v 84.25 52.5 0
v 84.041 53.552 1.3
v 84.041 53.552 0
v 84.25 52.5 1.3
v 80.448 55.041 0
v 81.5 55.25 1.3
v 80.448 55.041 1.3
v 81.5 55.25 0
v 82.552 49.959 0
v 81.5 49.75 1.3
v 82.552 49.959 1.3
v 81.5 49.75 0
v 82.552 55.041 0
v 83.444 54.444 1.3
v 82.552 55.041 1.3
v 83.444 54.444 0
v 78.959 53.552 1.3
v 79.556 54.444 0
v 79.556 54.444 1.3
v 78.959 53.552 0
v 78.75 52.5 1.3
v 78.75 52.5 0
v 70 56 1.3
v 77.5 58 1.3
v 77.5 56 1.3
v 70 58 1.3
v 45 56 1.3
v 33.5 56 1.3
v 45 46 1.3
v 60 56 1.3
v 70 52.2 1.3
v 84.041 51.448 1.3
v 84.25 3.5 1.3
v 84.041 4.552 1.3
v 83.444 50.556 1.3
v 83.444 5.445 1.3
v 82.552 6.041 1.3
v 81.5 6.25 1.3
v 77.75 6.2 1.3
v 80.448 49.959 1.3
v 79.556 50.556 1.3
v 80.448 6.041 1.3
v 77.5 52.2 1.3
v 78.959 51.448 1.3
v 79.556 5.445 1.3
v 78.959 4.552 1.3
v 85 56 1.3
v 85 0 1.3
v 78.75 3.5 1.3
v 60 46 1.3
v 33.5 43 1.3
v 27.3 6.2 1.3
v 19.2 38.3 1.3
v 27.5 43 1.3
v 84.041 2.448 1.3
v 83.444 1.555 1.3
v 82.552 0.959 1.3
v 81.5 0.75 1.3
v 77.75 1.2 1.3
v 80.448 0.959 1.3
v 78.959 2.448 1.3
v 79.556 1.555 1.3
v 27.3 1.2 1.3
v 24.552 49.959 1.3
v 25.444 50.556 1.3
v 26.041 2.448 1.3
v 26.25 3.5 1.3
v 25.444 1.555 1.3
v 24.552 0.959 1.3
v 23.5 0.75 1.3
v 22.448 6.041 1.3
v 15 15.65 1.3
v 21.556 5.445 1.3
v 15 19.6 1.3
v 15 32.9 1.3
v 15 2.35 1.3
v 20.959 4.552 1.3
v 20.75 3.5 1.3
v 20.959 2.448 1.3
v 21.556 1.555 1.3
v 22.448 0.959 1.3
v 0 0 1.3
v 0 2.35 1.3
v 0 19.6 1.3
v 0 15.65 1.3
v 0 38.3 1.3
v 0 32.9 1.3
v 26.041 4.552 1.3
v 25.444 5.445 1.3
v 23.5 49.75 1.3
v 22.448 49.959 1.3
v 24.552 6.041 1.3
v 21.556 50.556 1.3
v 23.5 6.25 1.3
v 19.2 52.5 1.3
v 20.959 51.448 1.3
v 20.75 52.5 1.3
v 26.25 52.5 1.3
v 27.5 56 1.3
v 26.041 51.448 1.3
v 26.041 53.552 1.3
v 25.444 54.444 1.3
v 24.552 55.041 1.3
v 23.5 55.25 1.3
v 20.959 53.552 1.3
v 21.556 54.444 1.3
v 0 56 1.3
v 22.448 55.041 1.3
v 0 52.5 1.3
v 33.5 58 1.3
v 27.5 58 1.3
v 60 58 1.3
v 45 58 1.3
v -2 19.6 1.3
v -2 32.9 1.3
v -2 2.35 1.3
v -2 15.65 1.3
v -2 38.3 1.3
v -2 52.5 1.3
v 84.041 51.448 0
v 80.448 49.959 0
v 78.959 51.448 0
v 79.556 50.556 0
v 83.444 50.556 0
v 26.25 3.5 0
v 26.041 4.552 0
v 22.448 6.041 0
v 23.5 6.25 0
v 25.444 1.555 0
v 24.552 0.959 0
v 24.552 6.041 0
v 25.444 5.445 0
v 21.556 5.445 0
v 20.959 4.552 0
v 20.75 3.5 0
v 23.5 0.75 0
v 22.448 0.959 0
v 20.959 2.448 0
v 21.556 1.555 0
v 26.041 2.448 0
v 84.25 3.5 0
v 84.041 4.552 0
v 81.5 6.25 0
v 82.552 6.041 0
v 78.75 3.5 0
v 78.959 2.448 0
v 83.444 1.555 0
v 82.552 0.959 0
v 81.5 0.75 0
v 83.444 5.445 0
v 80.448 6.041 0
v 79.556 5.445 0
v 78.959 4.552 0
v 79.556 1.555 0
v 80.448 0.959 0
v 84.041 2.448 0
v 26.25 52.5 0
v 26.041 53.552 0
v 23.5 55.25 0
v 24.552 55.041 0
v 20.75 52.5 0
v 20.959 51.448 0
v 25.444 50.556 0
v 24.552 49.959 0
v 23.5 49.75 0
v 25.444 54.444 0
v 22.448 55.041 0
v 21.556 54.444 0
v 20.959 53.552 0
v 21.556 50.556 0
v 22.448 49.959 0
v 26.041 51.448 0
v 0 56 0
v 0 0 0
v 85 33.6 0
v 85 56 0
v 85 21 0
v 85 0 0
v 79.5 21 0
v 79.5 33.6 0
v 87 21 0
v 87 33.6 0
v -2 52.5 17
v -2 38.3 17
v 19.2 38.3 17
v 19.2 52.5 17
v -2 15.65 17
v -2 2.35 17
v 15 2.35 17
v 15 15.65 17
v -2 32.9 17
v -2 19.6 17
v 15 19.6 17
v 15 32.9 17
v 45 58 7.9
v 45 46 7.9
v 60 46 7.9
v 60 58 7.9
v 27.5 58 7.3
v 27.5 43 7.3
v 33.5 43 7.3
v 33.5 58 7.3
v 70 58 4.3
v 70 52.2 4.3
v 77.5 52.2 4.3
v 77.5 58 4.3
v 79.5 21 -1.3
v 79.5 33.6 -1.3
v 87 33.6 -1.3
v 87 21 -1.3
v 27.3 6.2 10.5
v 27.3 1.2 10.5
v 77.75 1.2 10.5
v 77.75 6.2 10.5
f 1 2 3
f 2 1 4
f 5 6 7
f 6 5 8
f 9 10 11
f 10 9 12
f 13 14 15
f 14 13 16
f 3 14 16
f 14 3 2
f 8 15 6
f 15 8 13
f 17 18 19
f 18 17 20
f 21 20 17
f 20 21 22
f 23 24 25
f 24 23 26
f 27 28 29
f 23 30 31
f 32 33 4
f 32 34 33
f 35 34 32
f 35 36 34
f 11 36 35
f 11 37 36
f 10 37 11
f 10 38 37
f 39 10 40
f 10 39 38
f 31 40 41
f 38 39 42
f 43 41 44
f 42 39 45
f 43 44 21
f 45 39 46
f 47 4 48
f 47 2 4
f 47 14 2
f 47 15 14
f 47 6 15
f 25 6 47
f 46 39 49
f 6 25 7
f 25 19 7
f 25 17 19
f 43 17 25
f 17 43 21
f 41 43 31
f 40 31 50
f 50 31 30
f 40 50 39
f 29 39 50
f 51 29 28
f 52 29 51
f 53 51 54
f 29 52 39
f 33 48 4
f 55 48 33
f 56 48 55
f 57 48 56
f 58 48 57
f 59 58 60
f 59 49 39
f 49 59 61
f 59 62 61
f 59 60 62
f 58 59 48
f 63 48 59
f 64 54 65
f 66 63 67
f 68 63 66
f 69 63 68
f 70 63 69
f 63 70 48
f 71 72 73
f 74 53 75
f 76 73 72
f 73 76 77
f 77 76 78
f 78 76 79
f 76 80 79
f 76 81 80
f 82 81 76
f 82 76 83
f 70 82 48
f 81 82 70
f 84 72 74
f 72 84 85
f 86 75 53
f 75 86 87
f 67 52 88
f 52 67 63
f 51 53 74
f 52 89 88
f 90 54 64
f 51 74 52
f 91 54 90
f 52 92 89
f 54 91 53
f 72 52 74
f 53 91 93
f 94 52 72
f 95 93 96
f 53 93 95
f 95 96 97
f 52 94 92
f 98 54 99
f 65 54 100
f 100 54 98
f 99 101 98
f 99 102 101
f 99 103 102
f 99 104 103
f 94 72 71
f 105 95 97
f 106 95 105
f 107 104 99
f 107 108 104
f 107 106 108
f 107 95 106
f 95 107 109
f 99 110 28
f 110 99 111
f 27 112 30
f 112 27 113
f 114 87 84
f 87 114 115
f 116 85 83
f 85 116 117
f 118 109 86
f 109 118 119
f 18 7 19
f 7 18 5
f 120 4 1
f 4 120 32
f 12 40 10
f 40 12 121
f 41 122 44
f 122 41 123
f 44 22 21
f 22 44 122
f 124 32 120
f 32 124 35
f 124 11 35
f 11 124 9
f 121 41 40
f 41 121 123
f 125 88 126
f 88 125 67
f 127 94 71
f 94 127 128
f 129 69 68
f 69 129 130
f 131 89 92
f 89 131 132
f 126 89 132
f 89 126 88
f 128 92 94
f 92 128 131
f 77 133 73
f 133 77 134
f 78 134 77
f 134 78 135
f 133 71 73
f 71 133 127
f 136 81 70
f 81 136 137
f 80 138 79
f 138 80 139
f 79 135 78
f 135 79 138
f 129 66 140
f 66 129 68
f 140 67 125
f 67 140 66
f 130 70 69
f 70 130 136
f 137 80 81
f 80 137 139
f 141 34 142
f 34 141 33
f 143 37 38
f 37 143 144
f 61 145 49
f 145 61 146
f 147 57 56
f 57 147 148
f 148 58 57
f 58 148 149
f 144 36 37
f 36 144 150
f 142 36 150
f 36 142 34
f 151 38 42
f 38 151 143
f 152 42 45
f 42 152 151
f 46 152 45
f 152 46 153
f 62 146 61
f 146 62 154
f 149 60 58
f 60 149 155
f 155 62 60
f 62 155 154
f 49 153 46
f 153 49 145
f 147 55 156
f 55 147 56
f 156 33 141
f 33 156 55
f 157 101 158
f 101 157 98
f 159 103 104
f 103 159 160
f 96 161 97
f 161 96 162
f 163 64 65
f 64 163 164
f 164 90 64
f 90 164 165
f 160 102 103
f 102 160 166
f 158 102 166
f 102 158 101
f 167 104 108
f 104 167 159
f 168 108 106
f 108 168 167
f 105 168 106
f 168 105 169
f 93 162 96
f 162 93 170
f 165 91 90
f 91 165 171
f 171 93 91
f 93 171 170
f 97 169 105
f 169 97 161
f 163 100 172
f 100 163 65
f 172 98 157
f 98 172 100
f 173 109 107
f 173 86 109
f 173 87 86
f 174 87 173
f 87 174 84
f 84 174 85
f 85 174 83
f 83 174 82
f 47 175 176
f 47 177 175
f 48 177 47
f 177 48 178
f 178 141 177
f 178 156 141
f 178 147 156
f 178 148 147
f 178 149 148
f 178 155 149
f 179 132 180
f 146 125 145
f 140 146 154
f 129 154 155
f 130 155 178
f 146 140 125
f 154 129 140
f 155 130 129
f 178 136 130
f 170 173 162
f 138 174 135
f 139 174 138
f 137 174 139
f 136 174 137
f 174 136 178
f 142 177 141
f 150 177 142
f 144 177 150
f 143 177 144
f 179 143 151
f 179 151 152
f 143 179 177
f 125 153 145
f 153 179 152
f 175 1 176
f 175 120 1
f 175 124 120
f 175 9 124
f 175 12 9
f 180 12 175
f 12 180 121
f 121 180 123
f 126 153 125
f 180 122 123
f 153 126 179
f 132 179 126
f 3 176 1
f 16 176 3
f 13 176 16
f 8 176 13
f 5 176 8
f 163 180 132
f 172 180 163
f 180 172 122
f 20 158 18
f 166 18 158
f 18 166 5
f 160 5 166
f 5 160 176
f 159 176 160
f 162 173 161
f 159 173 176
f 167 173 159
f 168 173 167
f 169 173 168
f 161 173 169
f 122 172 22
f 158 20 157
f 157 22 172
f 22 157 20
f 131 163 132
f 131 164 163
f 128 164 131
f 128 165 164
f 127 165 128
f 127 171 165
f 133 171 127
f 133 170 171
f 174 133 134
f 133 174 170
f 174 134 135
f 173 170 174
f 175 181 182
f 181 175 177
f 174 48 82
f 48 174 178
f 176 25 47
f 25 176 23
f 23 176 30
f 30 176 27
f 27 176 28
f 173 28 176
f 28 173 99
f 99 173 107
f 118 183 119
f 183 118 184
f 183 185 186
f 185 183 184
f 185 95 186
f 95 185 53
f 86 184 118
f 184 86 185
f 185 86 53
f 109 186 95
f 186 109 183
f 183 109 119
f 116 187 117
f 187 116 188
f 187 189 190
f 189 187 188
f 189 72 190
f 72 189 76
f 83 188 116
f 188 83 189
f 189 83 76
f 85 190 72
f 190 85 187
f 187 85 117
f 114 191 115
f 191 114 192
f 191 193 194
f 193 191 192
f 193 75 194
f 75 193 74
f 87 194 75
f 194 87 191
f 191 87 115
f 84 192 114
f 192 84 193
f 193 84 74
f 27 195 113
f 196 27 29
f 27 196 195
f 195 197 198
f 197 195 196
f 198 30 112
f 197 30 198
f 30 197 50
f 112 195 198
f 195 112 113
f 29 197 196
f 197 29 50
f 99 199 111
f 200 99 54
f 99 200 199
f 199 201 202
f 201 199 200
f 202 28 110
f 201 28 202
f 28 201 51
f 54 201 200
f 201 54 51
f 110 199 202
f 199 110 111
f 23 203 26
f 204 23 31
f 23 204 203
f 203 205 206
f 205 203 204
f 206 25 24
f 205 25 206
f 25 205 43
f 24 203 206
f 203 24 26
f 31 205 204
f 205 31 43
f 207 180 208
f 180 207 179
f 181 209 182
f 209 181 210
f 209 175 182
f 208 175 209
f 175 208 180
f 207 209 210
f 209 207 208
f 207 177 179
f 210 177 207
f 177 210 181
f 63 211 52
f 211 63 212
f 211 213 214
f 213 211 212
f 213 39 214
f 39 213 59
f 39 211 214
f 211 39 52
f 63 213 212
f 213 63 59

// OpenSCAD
// A toggle switch ordered from https://www.sparkfun.com/products/11310

$fn = 16;

length = 85;
width = 56;
height = 1.3;

module board() {
    cube([length, width, height]);
}

module ethernet() {
    translate([-2, 38.3, height]) cube([21.2, 14.2, 15.7]);
}

module usb(y = 0) {
    translate([-2, y, height]) cube([17, 13.3, 15.7]);
}

module usb_power() {
    translate([70, width + 2 - 5.8, height]) cube([7.5, 5.8, 3]);
}

module micro_sd() {
    translate([length + 2 - 7.5, 21, -1.3]) cube([7.5, 12.6, 1.3]);
}

module dvi() {
    translate([45, width + 2 - 12, height]) cube([15, 12, 6.6]);
}

module audio() {
    translate([27.5, width + 2 - 15, height]) cube([6, 15, 6]);
}

module header() {
    translate([27.3, 1.2, height]) cube([50.45, 5, 9.2]);
}

module hole(x = 0, y = 0) {
    translate([length - x, width - y, -10]) cylinder(h = 10 + height, r = 2.75);
}

difference() {
    board();
    union() {
        hole(x = 3.5, y = 3.5);
        hole(x = 3.5 + 58, y = 3.5 + 49);
        hole(x = 3.5, y = 3.5 + 49);
        hole(x = 3.5 + 58, y = 3.5);
    }
}
color("green") ethernet();
color("red") usb(y=2.35);
color("blue") usb(y=19.6);
color("orange") dvi();
audio();
color("magenta") usb_power();
color("lime") micro_sd();
color("teal") usb_power();
color("black") header();
